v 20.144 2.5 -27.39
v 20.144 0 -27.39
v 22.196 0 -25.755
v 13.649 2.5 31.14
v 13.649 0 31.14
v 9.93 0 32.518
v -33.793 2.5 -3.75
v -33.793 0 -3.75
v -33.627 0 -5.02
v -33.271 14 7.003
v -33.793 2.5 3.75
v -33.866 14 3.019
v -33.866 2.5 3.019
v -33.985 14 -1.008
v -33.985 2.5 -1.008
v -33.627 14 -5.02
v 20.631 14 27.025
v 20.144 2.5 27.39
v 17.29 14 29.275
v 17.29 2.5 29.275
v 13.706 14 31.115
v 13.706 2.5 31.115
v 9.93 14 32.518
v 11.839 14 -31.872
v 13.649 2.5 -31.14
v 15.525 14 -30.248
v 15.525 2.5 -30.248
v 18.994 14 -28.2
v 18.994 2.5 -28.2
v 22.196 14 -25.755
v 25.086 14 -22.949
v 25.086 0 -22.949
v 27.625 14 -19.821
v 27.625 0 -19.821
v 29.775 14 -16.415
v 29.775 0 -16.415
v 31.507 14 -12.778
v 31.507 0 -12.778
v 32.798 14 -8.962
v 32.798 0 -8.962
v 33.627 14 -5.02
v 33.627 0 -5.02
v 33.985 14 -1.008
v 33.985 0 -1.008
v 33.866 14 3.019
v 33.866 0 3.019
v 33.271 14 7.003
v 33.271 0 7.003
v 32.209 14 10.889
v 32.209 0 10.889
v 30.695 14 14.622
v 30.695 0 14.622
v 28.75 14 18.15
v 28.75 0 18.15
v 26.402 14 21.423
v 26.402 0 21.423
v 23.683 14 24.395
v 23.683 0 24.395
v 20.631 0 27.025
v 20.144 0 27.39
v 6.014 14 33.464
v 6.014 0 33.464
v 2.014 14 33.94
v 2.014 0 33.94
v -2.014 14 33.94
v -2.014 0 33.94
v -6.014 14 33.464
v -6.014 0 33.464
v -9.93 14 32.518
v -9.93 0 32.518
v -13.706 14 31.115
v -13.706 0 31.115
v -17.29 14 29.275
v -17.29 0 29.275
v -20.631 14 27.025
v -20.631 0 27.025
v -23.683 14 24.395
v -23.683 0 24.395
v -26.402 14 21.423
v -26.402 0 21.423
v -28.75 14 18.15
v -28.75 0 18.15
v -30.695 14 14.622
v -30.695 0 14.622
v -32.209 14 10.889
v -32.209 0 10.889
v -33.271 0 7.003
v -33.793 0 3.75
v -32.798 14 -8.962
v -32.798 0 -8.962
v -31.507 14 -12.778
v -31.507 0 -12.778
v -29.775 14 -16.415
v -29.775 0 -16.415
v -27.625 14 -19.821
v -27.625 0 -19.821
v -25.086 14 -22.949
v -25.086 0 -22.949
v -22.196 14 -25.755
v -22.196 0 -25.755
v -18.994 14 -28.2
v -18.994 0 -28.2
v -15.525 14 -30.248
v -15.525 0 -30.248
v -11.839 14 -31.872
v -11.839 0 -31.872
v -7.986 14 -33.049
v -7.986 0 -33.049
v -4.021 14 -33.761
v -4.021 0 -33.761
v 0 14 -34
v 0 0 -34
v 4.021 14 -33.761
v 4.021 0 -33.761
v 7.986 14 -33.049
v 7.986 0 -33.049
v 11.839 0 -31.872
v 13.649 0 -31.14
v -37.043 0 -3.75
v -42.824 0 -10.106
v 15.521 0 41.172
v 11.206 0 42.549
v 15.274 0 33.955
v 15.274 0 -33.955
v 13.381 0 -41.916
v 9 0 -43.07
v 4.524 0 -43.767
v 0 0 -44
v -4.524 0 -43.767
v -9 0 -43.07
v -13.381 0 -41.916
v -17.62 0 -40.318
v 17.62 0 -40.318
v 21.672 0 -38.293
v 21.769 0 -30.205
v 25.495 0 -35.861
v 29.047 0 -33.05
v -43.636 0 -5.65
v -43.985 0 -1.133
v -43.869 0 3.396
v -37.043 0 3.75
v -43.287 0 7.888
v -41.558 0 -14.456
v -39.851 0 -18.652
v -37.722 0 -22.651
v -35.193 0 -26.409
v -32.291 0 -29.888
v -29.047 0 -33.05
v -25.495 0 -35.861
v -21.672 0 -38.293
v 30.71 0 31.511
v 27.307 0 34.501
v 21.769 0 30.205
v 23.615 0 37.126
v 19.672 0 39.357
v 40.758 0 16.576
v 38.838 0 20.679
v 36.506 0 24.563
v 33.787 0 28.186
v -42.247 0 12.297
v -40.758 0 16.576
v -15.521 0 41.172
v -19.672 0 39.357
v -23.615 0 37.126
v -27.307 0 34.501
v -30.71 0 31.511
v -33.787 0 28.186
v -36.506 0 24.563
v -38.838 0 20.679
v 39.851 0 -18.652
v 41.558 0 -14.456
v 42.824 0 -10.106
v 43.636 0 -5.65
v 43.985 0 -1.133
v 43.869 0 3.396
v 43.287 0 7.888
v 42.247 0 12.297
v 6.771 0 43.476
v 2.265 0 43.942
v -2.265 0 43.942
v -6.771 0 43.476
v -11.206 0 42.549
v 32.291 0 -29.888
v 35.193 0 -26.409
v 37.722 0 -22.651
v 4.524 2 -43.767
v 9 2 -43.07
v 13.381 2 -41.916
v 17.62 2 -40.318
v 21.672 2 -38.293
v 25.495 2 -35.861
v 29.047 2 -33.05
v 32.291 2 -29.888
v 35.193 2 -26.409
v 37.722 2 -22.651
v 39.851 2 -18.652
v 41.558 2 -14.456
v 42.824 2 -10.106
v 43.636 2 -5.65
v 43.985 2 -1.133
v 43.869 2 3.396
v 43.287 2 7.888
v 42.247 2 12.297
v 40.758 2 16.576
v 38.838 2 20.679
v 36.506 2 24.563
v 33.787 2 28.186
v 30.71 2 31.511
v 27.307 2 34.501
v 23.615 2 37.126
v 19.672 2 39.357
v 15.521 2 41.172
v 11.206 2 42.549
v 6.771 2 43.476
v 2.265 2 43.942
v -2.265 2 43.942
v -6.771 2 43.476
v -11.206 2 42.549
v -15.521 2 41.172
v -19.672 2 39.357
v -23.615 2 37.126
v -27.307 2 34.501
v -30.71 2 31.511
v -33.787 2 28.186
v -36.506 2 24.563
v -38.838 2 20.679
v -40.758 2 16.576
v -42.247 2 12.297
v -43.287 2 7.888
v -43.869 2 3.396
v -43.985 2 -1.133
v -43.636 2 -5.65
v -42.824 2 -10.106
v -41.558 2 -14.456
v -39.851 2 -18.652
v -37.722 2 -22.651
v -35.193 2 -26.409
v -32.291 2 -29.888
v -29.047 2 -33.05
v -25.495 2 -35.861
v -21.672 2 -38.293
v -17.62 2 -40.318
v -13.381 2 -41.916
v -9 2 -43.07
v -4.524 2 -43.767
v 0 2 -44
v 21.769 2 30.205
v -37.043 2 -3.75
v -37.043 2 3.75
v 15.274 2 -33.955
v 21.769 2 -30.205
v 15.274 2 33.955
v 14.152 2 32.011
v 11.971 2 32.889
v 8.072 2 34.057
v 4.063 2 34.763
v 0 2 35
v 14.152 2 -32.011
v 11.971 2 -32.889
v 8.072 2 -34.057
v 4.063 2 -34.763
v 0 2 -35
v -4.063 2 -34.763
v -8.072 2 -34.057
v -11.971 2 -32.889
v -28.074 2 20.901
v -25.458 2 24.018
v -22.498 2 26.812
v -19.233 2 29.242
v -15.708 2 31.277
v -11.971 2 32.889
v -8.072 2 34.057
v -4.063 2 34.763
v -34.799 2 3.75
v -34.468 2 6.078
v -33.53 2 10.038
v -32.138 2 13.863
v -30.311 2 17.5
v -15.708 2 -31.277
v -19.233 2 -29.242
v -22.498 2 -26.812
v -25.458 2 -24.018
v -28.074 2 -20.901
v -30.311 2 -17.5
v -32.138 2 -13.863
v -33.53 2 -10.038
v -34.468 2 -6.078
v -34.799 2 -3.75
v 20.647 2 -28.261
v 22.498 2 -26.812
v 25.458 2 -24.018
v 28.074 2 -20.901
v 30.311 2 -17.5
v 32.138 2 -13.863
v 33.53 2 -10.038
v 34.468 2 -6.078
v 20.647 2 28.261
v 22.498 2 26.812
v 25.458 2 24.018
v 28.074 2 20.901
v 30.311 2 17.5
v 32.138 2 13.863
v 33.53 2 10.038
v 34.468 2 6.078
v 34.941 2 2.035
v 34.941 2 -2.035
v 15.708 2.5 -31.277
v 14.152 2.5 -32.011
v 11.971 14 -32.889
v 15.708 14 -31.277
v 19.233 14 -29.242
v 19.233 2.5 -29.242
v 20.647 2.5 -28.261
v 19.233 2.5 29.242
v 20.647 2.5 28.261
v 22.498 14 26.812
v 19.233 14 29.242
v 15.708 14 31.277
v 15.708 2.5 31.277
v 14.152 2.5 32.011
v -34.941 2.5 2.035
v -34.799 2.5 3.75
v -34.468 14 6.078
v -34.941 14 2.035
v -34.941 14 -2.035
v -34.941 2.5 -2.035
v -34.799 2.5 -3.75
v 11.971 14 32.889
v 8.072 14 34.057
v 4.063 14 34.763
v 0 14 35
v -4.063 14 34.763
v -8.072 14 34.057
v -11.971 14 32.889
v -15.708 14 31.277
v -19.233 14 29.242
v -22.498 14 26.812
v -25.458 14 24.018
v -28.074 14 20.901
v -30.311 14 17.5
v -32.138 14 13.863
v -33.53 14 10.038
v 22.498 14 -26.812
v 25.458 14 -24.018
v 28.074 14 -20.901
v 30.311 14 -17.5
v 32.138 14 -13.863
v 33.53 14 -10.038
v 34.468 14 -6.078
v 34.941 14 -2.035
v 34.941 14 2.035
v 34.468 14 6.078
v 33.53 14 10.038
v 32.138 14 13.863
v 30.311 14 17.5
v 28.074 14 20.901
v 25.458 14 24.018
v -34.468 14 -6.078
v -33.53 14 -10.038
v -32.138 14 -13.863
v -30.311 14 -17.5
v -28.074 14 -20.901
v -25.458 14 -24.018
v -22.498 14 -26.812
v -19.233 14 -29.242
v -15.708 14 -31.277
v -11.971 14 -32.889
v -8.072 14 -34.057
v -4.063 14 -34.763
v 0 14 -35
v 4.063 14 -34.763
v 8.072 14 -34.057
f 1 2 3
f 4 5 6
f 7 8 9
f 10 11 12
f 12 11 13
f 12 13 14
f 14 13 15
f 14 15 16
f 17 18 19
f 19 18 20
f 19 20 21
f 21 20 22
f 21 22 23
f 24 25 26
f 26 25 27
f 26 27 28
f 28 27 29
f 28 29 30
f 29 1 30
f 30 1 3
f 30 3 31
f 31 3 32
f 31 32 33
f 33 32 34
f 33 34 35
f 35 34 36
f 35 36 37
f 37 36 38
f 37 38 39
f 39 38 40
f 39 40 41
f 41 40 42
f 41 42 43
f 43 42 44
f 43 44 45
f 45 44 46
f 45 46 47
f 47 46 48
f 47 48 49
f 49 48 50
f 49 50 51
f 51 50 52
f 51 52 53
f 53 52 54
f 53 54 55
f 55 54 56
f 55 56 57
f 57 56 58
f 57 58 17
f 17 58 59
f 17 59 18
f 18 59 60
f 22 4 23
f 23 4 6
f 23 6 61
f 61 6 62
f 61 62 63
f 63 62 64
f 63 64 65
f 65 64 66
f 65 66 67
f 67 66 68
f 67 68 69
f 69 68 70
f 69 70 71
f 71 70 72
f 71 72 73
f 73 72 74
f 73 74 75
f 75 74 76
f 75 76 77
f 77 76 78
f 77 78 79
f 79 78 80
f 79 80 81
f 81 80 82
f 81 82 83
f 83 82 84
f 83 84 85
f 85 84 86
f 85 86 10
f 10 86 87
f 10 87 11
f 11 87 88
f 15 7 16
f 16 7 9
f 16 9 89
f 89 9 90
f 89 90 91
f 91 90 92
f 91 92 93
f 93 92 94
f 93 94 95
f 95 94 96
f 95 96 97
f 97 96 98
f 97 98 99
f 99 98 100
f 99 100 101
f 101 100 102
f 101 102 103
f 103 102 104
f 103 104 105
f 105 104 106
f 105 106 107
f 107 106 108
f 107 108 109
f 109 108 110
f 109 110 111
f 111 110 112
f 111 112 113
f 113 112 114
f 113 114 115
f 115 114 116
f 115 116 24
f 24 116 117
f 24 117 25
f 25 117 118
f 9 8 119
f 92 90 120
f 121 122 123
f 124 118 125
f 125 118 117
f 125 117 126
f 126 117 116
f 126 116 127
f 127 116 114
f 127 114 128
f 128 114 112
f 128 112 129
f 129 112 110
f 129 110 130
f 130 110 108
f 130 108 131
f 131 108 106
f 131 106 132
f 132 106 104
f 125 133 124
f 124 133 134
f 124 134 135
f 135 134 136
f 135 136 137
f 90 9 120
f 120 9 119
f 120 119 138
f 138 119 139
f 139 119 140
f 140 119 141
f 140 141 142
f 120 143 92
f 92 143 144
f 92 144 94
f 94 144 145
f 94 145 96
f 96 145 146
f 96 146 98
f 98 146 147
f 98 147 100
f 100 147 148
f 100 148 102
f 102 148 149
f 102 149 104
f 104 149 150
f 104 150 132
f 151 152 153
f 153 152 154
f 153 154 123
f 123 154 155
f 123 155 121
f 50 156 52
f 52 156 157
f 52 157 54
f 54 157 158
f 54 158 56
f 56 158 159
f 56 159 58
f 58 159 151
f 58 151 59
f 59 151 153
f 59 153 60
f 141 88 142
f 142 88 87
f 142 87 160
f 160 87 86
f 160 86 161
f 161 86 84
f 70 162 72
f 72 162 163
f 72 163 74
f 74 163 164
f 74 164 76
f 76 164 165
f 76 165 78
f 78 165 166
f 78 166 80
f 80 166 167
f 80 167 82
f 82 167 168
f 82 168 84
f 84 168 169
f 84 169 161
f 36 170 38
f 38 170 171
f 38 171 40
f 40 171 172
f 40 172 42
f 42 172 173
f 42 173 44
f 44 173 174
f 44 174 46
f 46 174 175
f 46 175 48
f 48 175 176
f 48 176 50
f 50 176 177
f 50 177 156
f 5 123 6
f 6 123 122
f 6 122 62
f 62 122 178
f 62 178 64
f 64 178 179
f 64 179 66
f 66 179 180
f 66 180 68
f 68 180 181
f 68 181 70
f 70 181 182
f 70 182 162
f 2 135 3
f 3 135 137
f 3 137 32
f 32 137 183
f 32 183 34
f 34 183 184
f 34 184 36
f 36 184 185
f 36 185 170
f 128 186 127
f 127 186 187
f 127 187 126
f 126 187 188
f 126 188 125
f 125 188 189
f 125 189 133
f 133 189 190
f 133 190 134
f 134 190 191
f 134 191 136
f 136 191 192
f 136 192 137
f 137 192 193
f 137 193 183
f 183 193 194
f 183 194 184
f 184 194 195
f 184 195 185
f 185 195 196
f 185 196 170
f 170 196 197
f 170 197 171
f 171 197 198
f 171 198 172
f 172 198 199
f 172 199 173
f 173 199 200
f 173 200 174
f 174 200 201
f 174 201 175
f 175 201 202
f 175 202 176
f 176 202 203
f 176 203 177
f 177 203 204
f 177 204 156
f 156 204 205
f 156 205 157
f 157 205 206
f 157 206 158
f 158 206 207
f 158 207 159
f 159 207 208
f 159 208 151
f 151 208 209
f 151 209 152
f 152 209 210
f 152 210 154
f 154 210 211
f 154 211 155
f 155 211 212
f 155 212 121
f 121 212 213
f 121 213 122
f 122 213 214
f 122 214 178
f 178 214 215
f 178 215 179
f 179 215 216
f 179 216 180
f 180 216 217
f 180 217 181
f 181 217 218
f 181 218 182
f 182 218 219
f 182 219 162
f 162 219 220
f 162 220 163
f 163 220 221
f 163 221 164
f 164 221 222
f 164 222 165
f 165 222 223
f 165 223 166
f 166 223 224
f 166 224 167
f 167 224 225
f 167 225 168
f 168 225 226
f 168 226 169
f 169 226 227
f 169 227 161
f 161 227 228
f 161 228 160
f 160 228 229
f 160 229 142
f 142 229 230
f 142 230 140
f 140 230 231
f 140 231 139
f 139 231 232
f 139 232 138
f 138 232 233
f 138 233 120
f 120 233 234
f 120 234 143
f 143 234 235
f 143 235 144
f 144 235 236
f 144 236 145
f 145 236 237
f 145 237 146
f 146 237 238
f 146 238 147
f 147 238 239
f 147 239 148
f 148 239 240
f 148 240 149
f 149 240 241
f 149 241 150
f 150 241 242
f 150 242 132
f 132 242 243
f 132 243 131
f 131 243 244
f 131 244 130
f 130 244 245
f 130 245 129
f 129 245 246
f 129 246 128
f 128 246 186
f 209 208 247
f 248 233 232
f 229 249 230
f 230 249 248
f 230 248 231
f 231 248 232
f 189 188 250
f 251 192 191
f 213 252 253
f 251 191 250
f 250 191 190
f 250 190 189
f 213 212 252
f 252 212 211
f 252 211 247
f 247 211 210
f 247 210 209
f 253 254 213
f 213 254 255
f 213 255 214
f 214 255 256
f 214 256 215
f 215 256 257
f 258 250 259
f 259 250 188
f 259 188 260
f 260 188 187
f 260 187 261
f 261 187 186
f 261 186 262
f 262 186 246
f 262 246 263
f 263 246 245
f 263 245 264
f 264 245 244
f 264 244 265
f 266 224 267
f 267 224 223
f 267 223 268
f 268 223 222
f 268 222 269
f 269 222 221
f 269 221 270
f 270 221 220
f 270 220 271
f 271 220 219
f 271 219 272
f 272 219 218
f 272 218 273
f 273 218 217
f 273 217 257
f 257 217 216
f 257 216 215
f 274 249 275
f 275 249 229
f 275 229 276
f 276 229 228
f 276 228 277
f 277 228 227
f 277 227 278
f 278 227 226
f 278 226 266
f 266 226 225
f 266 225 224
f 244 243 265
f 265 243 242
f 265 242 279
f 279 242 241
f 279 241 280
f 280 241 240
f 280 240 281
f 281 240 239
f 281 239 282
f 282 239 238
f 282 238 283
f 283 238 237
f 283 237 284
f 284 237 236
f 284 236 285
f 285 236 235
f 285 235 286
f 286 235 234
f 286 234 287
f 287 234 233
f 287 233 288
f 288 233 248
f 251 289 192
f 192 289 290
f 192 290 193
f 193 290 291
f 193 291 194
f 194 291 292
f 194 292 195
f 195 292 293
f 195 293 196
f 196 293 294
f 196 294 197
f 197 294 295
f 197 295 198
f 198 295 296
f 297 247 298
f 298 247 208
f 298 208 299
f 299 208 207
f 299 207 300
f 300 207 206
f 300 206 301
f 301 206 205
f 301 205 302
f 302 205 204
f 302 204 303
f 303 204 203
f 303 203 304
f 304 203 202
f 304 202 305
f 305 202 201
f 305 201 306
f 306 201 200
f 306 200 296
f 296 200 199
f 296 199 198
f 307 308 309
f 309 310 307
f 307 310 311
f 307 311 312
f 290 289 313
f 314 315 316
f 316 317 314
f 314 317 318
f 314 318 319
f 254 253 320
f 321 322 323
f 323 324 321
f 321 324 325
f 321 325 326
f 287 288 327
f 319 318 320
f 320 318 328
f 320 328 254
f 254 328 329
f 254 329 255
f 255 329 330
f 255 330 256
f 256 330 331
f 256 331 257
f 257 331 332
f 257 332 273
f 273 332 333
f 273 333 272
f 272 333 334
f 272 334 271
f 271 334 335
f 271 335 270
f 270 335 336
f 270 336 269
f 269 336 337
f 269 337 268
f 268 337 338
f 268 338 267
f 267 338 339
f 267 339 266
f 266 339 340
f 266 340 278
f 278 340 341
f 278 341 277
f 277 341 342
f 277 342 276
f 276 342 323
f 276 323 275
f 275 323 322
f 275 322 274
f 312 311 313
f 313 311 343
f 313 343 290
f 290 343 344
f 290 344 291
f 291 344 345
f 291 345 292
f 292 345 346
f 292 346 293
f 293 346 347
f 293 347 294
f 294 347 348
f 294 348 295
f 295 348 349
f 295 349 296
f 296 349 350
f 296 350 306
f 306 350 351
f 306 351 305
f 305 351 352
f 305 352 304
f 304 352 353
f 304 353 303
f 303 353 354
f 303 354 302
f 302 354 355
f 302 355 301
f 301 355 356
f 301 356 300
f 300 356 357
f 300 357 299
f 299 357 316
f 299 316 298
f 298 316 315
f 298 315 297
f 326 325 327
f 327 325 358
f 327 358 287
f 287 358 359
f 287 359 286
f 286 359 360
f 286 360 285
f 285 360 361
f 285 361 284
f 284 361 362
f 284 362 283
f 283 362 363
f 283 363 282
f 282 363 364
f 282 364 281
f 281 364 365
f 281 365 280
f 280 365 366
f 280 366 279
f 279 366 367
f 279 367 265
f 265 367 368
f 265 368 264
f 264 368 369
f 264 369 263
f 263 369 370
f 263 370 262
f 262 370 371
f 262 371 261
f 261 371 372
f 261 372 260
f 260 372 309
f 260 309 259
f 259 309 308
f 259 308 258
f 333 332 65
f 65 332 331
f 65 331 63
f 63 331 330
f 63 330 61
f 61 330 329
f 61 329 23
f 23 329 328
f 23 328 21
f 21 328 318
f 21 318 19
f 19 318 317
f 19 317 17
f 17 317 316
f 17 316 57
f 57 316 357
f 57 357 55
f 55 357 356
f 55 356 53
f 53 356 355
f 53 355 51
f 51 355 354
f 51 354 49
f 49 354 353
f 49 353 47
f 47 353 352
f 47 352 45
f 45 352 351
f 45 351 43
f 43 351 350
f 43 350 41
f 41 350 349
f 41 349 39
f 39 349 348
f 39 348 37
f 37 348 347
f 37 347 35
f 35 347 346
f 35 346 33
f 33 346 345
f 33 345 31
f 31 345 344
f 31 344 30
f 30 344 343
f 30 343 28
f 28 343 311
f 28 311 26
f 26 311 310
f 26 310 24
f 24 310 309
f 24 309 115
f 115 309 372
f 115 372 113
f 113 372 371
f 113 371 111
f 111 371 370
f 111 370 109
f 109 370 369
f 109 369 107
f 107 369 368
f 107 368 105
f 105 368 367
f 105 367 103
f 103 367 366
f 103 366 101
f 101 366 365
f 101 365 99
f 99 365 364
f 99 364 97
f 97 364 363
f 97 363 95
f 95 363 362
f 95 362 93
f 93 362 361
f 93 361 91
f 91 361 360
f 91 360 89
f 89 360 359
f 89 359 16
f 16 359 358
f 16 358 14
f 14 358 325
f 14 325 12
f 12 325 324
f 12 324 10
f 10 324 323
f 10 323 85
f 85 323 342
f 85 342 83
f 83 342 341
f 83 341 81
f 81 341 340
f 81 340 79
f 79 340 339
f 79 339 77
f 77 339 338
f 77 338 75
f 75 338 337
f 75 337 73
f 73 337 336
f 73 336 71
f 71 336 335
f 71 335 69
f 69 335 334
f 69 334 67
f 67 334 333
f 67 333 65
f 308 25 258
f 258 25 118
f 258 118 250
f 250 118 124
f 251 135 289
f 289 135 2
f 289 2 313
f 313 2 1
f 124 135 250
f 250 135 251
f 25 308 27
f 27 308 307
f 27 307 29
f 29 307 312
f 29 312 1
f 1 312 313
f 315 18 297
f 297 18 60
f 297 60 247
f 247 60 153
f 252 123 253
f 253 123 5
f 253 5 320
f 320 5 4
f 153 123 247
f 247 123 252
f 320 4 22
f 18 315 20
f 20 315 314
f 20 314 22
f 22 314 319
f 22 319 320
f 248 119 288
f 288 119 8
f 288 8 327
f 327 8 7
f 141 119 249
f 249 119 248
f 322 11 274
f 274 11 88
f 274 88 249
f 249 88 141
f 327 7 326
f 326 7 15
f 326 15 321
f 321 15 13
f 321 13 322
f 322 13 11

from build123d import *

# Parameters (mm, degrees)
SKETCH5_W          = 3.25
SKETCH5_H          = 7.5
CUT_EXTRUDE1_DEPTH = 2.5


with BuildPart() as part:
    # Sketch2 → Revolve1 (revolve)
    with BuildSketch(Plane(origin=(0, 0, 0), x_dir=(0, 0, -1), z_dir=(1, 0, 0))):
        Polygon((34, 0), (44, 0), (44, 2), (35, 2), (35, 14), (34, 14), align=None)
    revolve(axis=Axis((0, 0, 0), (0, 1, 0)))

    # Sketch5 → Cut-Extrude1 (cut)
    with BuildSketch(Plane(origin=(0, 0, 0), x_dir=(-1, 0, 0), z_dir=(0, -1, 0))):
        Polygon((-15.273687611, -33.954802961), (-21.768878139, -30.204802961), (-20.143878139, -27.390220399), (-13.648687611, -31.140220399), align=None)
        with Locations((35.41756575, 0)):
            Rectangle(SKETCH5_W, SKETCH5_H)
        Polygon((-21.768878139, 30.204802961), (-15.273687611, 33.954802961), (-13.648687611, 31.140220399), (-20.143878139, 27.390220399), align=None)
    extrude(amount=-CUT_EXTRUDE1_DEPTH, mode=Mode.SUBTRACT)


solid = part.part
